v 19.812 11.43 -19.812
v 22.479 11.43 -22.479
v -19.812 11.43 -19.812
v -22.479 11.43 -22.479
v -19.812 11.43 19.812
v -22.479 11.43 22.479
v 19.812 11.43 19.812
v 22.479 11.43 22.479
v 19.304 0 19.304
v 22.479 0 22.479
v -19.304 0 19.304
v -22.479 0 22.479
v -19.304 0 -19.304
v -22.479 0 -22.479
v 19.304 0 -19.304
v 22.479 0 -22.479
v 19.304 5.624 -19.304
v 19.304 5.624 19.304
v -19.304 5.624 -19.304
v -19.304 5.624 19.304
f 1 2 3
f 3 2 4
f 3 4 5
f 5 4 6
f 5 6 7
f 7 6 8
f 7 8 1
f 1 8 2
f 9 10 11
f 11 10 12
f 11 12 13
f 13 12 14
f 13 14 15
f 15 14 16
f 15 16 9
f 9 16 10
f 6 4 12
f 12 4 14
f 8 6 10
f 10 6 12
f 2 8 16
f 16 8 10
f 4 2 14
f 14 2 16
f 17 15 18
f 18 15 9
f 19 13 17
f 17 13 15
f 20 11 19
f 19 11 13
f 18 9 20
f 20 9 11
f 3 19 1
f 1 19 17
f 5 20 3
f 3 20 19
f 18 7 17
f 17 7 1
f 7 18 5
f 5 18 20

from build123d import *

# Parameters (mm, degrees)
SKETCH1_W           = 44.958
SKETCH1_H           = 44.958
SKETCH1_W_2         = 38.608
SKETCH1_H_2         = 38.608
BOSS_EXTRUDE1_DEPTH = 11.43
CHAMFER1_SIZE       = 0.508
CHAMFER1_SIZE2      = 5.80646657


with BuildPart() as part:
    # Sketch1 → Boss-Extrude1 (new body)
    with BuildSketch(Plane(origin=(0, 0, 0), x_dir=(1, 0, 0), z_dir=(0, 1, 0))):
        Rectangle(SKETCH1_W, SKETCH1_H)
        Rectangle(SKETCH1_W_2, SKETCH1_H_2, mode=Mode.SUBTRACT)
    extrude(amount=BOSS_EXTRUDE1_DEPTH)

    # Chamfer1
    chamfer1_edges = [part.edges().sort_by_distance(p)[0] for p in [
        (19.304, 11.43, 0),
        (0, 11.43, -19.304),
        (-19.304, 11.43, 0),
        (0, 11.43, 19.304),
    ]]
    chamfer1_side = [part.faces().sort_by_distance(p)[0] for p in [
        (0, 11.43, 21.843197867),
    ]]
    chamfer(chamfer1_edges, length=CHAMFER1_SIZE, length2=CHAMFER1_SIZE2, reference=chamfer1_side[0])


solid = part.part
